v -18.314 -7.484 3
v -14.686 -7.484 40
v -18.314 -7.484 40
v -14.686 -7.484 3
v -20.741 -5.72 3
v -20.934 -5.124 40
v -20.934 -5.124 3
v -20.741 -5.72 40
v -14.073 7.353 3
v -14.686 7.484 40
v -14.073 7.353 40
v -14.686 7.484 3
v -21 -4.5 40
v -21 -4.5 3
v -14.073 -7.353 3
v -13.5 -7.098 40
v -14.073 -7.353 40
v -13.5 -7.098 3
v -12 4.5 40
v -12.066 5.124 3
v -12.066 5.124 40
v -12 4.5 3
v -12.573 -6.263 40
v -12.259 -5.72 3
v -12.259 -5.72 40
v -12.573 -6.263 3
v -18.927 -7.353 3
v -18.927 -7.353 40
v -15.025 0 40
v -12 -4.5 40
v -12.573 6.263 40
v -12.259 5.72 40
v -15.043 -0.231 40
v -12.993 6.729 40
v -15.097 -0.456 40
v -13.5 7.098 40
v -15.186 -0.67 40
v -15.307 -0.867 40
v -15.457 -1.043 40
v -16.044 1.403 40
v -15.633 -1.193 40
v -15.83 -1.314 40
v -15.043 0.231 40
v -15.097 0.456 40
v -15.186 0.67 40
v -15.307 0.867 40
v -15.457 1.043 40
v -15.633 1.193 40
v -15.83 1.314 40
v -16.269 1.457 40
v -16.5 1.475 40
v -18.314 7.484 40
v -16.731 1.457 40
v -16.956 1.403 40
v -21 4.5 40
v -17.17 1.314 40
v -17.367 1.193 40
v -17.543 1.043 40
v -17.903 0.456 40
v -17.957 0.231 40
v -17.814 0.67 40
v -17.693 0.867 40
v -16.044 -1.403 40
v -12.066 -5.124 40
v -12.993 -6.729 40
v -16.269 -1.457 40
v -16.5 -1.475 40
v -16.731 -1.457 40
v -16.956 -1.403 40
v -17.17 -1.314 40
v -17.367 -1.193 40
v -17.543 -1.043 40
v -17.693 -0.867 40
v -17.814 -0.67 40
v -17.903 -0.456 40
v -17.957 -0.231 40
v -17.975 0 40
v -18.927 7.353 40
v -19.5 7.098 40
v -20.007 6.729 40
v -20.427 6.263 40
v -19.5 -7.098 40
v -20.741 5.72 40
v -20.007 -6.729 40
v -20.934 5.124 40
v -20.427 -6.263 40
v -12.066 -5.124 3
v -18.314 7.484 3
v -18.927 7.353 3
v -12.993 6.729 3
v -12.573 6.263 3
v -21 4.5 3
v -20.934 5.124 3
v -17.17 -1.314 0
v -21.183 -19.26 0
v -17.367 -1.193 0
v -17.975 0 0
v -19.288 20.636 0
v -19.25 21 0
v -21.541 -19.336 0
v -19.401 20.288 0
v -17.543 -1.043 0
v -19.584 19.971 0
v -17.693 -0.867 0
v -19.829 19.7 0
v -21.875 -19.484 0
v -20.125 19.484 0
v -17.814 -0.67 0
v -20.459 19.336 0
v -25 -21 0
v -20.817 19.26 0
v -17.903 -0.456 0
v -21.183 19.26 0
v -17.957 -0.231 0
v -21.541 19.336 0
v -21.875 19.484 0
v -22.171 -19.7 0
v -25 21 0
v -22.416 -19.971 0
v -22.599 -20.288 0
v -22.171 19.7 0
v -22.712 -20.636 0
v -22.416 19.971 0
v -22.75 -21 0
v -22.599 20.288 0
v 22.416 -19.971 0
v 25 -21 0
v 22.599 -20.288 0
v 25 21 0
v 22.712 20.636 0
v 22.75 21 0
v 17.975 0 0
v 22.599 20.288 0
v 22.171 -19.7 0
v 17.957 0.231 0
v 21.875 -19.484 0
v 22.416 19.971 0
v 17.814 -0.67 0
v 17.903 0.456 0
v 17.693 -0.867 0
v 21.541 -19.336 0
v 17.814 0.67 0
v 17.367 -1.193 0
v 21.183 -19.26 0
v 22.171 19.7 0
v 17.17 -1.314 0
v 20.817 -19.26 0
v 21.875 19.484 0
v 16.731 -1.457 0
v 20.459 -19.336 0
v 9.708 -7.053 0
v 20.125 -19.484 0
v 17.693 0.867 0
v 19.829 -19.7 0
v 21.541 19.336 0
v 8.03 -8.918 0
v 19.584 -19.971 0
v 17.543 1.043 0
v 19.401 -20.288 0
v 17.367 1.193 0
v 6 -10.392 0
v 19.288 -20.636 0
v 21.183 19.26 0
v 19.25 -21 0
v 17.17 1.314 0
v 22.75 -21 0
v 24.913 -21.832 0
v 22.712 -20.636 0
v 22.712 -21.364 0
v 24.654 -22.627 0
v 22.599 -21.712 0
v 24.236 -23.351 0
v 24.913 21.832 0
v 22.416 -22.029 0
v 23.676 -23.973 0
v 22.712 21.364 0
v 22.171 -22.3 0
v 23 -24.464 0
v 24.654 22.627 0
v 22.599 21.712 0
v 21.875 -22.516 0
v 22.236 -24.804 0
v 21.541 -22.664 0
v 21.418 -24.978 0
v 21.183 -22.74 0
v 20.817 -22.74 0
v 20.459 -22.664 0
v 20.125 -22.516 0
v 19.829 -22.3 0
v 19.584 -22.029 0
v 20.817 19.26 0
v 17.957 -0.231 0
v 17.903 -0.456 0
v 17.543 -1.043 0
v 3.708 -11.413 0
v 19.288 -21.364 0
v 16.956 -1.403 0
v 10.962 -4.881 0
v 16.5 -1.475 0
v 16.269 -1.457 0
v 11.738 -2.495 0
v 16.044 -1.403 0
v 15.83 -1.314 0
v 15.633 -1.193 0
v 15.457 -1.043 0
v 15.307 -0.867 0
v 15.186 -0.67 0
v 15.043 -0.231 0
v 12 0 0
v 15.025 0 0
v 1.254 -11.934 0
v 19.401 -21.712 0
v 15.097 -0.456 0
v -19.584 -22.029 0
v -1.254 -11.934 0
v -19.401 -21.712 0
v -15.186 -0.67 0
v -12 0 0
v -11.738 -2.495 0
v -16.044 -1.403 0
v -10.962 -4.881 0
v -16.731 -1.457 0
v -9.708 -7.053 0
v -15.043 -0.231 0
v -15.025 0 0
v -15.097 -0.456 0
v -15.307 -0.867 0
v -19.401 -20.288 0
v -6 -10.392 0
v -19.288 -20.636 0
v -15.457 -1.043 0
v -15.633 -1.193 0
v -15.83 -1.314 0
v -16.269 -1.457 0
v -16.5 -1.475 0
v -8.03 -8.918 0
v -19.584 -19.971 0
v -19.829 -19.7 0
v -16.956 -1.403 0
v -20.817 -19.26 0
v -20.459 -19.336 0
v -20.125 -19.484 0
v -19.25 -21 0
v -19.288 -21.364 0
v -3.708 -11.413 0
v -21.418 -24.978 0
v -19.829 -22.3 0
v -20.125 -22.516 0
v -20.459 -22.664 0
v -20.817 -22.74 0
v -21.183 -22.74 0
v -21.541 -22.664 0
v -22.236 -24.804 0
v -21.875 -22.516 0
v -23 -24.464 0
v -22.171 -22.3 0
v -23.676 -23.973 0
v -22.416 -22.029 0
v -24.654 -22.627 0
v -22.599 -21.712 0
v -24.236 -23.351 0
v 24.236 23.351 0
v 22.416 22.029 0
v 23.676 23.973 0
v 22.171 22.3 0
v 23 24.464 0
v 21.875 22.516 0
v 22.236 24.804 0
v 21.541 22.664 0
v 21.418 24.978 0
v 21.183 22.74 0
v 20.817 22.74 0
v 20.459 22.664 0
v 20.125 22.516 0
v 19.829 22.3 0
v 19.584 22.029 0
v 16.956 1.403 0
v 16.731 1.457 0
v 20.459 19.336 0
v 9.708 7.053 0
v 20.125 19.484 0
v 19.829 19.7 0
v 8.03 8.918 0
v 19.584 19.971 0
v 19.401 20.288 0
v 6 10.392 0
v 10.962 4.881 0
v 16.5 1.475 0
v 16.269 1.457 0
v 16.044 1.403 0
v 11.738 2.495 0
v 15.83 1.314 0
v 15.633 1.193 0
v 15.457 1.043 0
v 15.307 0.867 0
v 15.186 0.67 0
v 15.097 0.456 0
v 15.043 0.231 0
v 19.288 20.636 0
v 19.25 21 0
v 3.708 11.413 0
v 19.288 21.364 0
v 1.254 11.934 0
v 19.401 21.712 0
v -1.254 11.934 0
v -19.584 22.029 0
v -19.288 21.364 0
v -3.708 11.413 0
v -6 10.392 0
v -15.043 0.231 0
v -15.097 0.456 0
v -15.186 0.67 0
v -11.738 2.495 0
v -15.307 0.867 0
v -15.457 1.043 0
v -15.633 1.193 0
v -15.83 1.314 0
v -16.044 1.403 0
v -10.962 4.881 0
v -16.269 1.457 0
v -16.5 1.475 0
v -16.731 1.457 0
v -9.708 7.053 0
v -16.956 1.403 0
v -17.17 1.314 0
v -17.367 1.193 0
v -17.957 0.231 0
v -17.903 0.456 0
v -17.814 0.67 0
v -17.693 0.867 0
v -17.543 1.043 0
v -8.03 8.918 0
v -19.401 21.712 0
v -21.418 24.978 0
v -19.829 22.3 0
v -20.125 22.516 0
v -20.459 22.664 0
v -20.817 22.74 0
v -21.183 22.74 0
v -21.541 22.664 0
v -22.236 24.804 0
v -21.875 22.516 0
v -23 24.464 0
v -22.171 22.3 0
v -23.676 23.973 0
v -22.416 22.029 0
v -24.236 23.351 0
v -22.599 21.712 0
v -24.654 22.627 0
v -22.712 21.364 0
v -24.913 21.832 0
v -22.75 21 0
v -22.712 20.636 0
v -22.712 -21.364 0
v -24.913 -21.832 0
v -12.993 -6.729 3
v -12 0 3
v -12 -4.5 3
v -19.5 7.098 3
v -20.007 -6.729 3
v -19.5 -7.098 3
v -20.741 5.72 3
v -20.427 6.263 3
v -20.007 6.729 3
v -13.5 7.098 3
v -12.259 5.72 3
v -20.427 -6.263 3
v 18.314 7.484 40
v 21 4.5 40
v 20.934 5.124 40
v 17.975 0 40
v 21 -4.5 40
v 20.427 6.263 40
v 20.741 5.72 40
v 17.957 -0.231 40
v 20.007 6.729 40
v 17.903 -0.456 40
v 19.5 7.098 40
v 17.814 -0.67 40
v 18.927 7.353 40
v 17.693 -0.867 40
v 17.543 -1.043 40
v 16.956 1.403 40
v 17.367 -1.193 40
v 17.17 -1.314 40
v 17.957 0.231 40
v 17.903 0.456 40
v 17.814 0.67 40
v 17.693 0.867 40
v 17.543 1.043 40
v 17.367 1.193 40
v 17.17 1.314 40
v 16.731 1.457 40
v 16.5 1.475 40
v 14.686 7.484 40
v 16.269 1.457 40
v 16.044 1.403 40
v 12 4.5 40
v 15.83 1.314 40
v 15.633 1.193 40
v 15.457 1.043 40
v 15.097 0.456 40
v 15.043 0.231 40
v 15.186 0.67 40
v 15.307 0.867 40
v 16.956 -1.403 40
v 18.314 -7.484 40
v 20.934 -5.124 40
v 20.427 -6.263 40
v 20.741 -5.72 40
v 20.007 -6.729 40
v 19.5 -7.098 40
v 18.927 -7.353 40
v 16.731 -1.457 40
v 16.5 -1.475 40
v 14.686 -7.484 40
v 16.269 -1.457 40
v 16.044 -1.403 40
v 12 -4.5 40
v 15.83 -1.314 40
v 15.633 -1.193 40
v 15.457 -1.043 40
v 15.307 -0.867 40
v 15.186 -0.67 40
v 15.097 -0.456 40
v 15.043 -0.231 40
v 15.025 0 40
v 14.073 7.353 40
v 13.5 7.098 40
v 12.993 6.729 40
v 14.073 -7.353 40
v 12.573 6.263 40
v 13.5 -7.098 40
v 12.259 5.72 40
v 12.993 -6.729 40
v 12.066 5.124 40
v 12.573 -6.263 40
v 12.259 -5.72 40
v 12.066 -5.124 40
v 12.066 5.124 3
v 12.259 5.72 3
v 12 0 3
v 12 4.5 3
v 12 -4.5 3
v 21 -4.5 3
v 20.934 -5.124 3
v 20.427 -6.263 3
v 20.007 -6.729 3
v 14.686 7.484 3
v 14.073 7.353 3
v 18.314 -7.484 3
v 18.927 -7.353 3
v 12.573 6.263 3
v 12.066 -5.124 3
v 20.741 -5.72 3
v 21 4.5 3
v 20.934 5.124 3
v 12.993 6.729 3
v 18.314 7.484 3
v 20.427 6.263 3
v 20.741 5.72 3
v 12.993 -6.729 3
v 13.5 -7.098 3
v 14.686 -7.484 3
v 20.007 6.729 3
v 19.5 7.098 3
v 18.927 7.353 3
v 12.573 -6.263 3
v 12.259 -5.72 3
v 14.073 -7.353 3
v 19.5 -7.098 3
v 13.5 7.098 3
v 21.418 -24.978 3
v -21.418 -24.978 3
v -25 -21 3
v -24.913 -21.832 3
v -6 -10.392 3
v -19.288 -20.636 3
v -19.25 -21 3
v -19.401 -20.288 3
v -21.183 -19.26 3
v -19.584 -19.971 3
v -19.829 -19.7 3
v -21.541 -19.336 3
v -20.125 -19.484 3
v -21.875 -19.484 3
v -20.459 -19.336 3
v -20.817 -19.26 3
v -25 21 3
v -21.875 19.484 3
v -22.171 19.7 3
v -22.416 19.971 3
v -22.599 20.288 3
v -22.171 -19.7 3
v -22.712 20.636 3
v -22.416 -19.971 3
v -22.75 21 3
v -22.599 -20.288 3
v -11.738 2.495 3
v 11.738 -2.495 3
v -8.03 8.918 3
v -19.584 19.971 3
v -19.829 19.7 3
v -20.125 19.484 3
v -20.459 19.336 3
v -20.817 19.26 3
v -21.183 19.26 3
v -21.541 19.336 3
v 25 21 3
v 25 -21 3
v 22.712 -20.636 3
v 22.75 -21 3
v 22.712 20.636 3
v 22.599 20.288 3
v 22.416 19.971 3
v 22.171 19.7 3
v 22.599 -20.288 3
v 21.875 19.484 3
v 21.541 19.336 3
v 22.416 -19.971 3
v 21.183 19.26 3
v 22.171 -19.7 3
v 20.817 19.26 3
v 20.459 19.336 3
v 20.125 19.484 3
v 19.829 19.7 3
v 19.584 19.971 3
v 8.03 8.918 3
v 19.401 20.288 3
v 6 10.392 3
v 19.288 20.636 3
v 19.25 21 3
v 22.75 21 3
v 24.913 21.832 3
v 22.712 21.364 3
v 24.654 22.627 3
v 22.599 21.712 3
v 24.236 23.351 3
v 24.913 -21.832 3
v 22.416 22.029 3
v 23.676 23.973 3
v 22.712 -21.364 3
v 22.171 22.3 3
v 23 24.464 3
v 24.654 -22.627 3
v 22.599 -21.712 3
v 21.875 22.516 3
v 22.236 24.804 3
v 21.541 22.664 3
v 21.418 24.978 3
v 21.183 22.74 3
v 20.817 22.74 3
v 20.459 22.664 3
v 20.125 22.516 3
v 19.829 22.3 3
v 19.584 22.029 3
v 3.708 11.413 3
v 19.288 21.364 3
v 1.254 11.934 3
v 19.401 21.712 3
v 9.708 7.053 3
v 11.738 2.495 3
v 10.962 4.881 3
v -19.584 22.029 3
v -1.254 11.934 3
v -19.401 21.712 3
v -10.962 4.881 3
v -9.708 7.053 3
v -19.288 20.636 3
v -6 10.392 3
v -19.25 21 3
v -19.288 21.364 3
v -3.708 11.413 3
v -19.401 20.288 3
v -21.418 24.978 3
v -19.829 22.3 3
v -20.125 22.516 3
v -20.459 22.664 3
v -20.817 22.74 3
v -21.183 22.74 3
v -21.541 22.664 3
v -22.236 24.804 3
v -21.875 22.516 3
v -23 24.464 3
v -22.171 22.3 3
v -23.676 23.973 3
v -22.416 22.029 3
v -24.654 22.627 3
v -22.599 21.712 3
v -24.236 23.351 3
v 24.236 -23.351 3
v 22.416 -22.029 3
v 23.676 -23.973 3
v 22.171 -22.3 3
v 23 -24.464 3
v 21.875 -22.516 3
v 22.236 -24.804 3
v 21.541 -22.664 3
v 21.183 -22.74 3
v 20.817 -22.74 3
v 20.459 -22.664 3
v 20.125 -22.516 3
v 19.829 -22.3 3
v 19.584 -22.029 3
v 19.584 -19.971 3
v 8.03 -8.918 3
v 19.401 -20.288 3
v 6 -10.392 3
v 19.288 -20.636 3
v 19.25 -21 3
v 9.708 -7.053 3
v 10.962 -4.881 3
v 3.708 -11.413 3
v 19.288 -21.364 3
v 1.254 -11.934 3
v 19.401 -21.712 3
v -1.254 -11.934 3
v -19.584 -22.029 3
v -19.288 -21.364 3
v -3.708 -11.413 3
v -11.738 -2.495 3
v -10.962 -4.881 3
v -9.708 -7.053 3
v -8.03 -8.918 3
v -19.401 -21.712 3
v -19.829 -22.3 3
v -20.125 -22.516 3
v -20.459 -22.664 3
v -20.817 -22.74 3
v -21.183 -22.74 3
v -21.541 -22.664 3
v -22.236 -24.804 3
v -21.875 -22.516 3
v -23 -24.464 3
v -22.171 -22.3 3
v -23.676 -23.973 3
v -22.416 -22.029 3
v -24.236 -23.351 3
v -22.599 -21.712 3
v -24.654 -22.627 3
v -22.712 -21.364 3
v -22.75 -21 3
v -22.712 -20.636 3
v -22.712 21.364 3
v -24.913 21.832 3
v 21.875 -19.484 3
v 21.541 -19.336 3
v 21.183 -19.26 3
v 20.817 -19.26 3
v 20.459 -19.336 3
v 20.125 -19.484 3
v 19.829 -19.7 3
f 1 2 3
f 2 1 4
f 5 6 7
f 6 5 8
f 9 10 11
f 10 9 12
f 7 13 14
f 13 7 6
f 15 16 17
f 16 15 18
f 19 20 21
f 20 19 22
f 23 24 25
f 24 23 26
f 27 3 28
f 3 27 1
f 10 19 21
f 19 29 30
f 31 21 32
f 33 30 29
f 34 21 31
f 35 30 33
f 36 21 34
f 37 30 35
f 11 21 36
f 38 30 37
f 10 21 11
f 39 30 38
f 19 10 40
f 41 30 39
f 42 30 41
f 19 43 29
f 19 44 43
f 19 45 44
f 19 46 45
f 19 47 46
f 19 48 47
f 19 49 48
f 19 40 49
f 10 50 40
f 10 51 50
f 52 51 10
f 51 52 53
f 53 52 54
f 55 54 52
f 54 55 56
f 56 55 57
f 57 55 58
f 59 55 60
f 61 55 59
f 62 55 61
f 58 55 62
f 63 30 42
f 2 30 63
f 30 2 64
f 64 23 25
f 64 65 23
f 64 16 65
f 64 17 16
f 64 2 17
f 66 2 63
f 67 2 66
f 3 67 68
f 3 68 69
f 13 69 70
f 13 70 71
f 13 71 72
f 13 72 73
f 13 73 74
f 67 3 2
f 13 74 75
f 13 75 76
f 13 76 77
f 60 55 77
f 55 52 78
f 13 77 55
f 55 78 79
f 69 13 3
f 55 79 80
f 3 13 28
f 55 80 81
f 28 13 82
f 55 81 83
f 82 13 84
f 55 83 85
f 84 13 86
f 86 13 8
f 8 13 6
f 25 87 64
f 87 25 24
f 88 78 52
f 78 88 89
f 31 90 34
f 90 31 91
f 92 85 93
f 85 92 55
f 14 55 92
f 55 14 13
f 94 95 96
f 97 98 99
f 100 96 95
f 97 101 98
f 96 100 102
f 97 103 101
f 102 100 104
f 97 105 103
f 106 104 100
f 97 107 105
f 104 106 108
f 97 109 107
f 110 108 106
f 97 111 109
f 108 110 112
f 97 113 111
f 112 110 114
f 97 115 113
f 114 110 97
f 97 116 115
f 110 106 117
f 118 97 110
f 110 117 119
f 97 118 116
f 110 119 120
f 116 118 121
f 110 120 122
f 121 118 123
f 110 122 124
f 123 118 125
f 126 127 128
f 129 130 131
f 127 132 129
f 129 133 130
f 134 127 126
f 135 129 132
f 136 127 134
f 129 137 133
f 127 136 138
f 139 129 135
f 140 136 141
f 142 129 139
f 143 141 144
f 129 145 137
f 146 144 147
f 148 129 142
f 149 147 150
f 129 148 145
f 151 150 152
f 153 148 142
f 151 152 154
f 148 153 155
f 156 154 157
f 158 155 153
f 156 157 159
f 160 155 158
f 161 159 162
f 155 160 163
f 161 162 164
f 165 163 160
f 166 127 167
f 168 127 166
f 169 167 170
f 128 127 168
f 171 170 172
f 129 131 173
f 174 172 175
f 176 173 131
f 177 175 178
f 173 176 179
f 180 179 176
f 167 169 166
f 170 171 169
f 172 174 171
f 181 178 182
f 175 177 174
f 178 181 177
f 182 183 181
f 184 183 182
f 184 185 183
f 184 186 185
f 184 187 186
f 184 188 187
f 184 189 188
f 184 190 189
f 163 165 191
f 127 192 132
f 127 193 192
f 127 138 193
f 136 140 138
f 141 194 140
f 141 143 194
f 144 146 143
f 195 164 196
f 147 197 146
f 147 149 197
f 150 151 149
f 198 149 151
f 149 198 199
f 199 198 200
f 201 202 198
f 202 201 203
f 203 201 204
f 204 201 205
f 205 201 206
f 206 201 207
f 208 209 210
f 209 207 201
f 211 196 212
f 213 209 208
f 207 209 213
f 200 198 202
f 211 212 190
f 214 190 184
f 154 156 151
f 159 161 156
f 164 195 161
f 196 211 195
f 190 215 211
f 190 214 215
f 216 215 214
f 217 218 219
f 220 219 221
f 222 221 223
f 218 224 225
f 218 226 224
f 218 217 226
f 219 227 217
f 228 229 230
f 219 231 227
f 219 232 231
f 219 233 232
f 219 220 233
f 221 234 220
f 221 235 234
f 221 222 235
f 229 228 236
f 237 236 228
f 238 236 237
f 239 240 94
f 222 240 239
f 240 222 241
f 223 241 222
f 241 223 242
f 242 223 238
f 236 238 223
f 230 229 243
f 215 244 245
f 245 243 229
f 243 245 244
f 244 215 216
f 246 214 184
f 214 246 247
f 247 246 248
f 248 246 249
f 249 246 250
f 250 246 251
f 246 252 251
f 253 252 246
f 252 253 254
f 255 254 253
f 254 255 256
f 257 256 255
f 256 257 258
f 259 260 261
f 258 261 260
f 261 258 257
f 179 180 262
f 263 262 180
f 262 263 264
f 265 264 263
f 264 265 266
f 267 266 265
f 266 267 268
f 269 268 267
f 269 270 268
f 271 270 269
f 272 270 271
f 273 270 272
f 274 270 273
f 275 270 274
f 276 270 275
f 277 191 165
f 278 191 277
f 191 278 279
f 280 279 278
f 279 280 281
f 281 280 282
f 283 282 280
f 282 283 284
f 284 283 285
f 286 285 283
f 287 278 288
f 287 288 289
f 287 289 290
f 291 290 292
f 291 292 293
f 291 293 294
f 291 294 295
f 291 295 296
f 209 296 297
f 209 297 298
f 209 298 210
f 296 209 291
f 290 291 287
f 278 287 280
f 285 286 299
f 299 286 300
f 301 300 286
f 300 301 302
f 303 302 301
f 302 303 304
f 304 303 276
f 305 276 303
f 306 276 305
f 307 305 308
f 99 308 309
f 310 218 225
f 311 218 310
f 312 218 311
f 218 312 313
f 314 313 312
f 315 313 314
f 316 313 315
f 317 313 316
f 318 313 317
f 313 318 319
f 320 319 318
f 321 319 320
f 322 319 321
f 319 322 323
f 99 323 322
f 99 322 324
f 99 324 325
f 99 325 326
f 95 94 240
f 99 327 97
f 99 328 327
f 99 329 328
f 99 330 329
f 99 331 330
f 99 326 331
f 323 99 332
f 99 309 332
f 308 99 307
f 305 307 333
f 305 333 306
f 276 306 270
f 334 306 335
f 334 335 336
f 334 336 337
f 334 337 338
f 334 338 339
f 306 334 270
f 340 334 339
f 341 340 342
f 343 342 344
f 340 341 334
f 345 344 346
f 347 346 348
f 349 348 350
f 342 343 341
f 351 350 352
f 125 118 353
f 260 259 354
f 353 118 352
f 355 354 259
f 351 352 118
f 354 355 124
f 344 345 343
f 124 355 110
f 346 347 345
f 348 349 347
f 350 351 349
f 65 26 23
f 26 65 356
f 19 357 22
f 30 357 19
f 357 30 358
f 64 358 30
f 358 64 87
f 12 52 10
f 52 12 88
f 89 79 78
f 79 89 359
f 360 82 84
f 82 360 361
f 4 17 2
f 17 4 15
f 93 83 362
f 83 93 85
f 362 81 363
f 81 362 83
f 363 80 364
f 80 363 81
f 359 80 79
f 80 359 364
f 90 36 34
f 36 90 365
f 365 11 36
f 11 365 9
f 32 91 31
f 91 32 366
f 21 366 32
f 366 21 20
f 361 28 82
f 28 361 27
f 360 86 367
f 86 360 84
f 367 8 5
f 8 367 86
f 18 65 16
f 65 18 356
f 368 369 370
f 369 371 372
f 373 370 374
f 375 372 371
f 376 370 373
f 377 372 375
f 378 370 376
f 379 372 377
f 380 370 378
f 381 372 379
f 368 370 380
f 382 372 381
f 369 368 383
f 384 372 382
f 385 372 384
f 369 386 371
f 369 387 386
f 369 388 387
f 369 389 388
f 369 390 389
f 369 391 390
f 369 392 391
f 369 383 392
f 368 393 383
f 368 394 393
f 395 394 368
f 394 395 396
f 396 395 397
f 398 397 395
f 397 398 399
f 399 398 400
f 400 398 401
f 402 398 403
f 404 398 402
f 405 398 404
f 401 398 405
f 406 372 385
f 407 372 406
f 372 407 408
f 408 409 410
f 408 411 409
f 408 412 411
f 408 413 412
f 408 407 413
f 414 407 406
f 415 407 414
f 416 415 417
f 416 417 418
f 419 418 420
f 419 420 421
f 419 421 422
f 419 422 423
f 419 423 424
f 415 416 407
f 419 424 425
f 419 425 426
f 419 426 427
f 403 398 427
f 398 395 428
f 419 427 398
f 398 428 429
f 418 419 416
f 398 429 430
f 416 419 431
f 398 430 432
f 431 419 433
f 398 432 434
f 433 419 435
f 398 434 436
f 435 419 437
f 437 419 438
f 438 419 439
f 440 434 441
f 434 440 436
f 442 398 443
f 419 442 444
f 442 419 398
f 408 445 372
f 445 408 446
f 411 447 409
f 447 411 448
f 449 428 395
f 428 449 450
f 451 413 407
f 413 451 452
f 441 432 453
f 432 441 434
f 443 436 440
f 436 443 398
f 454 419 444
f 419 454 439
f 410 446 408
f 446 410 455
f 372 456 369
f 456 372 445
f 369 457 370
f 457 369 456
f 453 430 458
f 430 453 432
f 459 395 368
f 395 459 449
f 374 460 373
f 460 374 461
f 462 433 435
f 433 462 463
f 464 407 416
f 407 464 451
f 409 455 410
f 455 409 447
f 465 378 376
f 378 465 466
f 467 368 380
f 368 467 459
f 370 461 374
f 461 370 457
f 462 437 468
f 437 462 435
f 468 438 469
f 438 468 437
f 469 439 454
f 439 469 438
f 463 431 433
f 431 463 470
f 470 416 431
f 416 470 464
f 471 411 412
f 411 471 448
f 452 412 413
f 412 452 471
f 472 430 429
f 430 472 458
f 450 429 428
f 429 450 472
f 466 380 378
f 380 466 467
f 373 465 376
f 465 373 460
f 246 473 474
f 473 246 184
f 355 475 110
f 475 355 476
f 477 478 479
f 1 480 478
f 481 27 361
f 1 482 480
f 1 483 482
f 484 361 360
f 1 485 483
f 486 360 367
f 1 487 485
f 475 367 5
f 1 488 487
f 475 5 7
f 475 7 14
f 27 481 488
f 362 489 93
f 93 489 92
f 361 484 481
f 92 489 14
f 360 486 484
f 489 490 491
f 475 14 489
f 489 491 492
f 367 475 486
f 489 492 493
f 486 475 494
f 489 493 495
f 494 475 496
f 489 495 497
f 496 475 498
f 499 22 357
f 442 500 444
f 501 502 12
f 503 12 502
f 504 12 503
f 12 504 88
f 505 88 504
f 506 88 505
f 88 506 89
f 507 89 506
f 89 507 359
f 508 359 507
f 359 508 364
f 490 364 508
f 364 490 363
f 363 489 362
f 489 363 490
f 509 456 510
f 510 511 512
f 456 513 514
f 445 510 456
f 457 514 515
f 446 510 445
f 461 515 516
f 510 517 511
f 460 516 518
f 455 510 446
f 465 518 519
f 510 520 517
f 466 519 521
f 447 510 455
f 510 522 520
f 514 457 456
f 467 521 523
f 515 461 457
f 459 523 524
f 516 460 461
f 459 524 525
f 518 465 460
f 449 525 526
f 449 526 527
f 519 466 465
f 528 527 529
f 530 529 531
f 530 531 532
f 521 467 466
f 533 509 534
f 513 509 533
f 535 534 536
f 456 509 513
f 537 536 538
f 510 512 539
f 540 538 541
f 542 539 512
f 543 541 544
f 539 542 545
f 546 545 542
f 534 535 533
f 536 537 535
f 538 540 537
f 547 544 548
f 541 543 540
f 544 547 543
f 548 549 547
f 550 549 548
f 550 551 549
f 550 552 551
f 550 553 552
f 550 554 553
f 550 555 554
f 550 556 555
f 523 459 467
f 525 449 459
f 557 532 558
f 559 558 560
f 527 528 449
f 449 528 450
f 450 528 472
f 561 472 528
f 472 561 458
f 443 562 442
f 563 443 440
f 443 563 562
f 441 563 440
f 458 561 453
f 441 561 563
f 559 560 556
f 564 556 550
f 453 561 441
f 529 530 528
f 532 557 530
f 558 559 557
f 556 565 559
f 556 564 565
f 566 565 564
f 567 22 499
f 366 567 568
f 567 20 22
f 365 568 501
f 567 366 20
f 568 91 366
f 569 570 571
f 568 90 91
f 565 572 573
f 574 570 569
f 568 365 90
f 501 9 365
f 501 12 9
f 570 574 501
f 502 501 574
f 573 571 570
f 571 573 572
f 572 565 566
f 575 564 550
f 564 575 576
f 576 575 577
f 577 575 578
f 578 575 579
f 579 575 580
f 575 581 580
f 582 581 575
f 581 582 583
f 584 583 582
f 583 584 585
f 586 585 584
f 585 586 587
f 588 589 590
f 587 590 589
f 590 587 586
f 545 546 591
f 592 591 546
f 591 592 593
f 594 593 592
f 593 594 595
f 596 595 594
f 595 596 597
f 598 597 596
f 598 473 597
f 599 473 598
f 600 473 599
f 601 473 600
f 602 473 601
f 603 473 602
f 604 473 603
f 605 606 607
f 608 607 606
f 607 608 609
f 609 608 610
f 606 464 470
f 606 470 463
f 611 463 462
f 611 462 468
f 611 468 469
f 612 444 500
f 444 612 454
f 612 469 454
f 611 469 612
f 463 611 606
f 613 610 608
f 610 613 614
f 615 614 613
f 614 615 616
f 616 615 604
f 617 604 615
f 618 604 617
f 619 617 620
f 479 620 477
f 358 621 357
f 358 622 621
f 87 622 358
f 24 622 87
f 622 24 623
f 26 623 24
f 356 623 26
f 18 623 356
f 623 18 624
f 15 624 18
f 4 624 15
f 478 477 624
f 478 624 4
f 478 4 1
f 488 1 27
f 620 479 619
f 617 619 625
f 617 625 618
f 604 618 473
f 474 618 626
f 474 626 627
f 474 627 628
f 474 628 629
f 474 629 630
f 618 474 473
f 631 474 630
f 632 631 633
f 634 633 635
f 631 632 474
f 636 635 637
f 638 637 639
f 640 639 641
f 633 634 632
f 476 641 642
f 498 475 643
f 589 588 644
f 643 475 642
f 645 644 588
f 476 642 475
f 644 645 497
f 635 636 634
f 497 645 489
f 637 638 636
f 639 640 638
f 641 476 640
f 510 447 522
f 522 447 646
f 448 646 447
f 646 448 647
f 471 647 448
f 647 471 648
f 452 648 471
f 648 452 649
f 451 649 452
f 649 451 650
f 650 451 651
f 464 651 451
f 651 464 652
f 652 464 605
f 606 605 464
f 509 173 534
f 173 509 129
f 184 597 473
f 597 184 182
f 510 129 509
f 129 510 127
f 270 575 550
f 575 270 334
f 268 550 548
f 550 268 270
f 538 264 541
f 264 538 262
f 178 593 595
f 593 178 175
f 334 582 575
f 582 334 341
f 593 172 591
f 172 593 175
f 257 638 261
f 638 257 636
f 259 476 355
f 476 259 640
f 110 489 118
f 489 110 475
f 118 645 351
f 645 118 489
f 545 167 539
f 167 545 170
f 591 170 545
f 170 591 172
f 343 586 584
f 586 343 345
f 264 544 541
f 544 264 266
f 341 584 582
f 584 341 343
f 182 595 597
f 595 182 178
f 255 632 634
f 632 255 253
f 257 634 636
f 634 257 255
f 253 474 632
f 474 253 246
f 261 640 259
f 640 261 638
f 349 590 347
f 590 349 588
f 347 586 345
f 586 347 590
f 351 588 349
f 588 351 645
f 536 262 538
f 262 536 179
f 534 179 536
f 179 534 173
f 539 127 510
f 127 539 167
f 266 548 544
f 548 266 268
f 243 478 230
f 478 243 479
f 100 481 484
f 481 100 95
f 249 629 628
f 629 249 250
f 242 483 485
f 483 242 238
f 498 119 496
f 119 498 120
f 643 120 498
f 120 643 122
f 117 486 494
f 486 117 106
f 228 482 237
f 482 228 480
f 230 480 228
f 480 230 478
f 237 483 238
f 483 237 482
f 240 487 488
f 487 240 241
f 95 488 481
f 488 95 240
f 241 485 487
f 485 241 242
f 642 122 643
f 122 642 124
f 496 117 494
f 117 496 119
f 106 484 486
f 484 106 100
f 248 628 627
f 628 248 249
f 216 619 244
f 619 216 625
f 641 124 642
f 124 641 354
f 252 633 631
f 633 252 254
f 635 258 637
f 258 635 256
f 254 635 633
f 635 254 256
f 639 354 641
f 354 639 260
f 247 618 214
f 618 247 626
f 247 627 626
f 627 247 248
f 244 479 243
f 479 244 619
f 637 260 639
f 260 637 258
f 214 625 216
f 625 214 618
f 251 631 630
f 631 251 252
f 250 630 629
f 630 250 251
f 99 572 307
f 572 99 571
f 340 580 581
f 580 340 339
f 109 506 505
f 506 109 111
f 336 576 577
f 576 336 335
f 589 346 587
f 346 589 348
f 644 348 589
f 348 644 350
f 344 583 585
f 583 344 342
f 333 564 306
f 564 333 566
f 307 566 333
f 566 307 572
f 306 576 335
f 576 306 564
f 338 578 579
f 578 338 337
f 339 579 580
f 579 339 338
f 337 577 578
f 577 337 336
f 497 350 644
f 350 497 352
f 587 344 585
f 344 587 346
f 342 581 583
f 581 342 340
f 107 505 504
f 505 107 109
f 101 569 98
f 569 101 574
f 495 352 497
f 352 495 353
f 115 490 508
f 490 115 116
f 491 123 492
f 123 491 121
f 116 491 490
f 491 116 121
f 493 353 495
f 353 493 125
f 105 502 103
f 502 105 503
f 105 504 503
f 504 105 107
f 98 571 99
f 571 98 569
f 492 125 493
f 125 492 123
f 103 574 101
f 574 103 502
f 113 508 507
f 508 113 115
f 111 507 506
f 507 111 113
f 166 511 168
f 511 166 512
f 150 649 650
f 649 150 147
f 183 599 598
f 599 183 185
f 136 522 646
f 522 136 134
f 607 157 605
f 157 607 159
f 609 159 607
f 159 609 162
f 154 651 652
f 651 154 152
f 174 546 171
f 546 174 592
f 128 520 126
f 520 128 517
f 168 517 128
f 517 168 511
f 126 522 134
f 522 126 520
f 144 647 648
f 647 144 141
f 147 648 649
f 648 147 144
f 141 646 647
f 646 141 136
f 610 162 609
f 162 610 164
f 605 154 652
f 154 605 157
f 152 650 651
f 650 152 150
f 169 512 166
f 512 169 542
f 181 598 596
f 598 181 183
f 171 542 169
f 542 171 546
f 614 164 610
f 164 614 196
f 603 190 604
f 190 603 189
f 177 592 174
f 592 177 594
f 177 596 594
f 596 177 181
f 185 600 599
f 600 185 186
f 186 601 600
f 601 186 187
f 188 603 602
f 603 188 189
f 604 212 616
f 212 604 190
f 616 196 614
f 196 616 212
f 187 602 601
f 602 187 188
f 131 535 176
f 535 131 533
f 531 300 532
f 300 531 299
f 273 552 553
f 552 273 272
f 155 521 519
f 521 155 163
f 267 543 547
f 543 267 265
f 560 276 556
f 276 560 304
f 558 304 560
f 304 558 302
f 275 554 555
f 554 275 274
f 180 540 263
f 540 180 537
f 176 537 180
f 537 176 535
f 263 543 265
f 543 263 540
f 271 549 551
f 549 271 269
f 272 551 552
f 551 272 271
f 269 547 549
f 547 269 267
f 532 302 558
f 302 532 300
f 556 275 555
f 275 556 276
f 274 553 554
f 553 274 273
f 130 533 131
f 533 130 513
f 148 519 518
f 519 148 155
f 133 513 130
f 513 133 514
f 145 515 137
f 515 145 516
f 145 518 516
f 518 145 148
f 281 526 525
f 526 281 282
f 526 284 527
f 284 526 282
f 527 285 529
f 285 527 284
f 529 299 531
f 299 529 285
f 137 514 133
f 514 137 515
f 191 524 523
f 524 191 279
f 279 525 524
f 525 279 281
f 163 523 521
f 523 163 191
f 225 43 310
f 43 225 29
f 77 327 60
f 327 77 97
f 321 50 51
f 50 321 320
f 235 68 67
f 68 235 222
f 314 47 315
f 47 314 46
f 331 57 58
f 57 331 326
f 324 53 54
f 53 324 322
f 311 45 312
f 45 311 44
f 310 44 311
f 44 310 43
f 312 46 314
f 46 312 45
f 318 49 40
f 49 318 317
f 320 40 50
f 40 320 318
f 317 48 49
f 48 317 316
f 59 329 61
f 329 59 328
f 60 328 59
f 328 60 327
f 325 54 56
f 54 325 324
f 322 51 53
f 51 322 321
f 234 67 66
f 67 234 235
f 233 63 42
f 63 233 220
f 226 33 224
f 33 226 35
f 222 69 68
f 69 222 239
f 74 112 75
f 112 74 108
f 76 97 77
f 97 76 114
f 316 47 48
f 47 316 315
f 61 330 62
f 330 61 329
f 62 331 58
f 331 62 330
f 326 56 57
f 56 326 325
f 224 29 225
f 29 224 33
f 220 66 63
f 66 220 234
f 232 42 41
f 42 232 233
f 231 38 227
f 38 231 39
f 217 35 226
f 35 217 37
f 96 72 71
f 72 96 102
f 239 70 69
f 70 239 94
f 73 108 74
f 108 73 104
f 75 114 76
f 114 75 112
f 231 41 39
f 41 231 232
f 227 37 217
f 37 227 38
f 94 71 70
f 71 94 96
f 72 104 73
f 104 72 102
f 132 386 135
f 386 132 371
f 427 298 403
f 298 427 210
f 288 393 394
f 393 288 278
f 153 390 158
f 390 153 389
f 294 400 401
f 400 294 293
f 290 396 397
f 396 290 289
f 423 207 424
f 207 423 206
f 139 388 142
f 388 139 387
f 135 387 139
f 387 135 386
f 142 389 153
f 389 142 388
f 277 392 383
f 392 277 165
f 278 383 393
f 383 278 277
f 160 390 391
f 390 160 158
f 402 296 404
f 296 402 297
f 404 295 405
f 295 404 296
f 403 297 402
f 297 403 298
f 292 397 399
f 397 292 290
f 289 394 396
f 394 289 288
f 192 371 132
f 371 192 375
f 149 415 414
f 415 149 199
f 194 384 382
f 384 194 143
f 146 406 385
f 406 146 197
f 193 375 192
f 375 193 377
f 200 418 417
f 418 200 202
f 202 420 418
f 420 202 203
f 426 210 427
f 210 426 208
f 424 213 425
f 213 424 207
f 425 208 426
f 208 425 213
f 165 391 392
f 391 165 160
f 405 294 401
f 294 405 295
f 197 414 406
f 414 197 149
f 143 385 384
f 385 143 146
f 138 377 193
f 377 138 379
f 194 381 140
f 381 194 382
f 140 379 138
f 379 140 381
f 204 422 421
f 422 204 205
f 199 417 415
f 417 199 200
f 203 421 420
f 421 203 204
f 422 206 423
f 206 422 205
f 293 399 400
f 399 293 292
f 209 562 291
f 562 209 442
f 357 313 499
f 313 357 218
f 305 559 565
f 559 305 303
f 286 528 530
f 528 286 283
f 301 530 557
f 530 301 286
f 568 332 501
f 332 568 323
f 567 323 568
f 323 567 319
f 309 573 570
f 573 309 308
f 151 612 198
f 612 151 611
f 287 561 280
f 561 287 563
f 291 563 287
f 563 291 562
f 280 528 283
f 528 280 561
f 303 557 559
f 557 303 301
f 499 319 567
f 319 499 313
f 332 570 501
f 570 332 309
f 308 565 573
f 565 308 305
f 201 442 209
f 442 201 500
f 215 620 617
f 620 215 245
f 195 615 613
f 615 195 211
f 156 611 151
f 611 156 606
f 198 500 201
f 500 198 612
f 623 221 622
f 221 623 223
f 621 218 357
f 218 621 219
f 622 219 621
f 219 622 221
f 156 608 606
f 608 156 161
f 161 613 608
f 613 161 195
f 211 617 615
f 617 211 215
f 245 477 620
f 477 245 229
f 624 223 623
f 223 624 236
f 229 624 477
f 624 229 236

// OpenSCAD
size =50;
tap_hole_632 = 2.95;
difference() {
  union() {
    translate([-size/2,-size/2])
    v_rounded_cube([size,size,3],r=4);
    for (ii=[-33/2,33/2]) {
      translate([ii-9/2,-15/2,0]) v_rounded_cube([9,15,40],r=3);
    }
  }

  translate([-size/2,-size/2])
  for (ii = [4,size-4]) {
    for (jj = [4,size-4]) {
      translate([ii,jj,0]) cylinder(h=10,d=3.5 , center=true,$fn=30);
    }
  }
  cylinder(h=10,d=24 , center=true);
  for (ii=[-33/2,33/2]) {
    translate([ii,0,0]) cylinder(h=44,d=tap_hole_632 , center=false,$fn=40);
  }
}

module v_rounded_cube(xyz,r,$fn=30) {
  z = xyz[2];
  y = xyz[1];
  x = xyz[0];
  translate([r,r])
  hull() {
    cylinder(h=z,r=r);
    translate([0,y-2*r])
    cylinder(h=z,r=r);
    translate([x-2*r,0])
    cylinder(h=z,r=r);
    translate([x-2*r,y-2*r])
    cylinder(h=z,r=r);
  }
}
